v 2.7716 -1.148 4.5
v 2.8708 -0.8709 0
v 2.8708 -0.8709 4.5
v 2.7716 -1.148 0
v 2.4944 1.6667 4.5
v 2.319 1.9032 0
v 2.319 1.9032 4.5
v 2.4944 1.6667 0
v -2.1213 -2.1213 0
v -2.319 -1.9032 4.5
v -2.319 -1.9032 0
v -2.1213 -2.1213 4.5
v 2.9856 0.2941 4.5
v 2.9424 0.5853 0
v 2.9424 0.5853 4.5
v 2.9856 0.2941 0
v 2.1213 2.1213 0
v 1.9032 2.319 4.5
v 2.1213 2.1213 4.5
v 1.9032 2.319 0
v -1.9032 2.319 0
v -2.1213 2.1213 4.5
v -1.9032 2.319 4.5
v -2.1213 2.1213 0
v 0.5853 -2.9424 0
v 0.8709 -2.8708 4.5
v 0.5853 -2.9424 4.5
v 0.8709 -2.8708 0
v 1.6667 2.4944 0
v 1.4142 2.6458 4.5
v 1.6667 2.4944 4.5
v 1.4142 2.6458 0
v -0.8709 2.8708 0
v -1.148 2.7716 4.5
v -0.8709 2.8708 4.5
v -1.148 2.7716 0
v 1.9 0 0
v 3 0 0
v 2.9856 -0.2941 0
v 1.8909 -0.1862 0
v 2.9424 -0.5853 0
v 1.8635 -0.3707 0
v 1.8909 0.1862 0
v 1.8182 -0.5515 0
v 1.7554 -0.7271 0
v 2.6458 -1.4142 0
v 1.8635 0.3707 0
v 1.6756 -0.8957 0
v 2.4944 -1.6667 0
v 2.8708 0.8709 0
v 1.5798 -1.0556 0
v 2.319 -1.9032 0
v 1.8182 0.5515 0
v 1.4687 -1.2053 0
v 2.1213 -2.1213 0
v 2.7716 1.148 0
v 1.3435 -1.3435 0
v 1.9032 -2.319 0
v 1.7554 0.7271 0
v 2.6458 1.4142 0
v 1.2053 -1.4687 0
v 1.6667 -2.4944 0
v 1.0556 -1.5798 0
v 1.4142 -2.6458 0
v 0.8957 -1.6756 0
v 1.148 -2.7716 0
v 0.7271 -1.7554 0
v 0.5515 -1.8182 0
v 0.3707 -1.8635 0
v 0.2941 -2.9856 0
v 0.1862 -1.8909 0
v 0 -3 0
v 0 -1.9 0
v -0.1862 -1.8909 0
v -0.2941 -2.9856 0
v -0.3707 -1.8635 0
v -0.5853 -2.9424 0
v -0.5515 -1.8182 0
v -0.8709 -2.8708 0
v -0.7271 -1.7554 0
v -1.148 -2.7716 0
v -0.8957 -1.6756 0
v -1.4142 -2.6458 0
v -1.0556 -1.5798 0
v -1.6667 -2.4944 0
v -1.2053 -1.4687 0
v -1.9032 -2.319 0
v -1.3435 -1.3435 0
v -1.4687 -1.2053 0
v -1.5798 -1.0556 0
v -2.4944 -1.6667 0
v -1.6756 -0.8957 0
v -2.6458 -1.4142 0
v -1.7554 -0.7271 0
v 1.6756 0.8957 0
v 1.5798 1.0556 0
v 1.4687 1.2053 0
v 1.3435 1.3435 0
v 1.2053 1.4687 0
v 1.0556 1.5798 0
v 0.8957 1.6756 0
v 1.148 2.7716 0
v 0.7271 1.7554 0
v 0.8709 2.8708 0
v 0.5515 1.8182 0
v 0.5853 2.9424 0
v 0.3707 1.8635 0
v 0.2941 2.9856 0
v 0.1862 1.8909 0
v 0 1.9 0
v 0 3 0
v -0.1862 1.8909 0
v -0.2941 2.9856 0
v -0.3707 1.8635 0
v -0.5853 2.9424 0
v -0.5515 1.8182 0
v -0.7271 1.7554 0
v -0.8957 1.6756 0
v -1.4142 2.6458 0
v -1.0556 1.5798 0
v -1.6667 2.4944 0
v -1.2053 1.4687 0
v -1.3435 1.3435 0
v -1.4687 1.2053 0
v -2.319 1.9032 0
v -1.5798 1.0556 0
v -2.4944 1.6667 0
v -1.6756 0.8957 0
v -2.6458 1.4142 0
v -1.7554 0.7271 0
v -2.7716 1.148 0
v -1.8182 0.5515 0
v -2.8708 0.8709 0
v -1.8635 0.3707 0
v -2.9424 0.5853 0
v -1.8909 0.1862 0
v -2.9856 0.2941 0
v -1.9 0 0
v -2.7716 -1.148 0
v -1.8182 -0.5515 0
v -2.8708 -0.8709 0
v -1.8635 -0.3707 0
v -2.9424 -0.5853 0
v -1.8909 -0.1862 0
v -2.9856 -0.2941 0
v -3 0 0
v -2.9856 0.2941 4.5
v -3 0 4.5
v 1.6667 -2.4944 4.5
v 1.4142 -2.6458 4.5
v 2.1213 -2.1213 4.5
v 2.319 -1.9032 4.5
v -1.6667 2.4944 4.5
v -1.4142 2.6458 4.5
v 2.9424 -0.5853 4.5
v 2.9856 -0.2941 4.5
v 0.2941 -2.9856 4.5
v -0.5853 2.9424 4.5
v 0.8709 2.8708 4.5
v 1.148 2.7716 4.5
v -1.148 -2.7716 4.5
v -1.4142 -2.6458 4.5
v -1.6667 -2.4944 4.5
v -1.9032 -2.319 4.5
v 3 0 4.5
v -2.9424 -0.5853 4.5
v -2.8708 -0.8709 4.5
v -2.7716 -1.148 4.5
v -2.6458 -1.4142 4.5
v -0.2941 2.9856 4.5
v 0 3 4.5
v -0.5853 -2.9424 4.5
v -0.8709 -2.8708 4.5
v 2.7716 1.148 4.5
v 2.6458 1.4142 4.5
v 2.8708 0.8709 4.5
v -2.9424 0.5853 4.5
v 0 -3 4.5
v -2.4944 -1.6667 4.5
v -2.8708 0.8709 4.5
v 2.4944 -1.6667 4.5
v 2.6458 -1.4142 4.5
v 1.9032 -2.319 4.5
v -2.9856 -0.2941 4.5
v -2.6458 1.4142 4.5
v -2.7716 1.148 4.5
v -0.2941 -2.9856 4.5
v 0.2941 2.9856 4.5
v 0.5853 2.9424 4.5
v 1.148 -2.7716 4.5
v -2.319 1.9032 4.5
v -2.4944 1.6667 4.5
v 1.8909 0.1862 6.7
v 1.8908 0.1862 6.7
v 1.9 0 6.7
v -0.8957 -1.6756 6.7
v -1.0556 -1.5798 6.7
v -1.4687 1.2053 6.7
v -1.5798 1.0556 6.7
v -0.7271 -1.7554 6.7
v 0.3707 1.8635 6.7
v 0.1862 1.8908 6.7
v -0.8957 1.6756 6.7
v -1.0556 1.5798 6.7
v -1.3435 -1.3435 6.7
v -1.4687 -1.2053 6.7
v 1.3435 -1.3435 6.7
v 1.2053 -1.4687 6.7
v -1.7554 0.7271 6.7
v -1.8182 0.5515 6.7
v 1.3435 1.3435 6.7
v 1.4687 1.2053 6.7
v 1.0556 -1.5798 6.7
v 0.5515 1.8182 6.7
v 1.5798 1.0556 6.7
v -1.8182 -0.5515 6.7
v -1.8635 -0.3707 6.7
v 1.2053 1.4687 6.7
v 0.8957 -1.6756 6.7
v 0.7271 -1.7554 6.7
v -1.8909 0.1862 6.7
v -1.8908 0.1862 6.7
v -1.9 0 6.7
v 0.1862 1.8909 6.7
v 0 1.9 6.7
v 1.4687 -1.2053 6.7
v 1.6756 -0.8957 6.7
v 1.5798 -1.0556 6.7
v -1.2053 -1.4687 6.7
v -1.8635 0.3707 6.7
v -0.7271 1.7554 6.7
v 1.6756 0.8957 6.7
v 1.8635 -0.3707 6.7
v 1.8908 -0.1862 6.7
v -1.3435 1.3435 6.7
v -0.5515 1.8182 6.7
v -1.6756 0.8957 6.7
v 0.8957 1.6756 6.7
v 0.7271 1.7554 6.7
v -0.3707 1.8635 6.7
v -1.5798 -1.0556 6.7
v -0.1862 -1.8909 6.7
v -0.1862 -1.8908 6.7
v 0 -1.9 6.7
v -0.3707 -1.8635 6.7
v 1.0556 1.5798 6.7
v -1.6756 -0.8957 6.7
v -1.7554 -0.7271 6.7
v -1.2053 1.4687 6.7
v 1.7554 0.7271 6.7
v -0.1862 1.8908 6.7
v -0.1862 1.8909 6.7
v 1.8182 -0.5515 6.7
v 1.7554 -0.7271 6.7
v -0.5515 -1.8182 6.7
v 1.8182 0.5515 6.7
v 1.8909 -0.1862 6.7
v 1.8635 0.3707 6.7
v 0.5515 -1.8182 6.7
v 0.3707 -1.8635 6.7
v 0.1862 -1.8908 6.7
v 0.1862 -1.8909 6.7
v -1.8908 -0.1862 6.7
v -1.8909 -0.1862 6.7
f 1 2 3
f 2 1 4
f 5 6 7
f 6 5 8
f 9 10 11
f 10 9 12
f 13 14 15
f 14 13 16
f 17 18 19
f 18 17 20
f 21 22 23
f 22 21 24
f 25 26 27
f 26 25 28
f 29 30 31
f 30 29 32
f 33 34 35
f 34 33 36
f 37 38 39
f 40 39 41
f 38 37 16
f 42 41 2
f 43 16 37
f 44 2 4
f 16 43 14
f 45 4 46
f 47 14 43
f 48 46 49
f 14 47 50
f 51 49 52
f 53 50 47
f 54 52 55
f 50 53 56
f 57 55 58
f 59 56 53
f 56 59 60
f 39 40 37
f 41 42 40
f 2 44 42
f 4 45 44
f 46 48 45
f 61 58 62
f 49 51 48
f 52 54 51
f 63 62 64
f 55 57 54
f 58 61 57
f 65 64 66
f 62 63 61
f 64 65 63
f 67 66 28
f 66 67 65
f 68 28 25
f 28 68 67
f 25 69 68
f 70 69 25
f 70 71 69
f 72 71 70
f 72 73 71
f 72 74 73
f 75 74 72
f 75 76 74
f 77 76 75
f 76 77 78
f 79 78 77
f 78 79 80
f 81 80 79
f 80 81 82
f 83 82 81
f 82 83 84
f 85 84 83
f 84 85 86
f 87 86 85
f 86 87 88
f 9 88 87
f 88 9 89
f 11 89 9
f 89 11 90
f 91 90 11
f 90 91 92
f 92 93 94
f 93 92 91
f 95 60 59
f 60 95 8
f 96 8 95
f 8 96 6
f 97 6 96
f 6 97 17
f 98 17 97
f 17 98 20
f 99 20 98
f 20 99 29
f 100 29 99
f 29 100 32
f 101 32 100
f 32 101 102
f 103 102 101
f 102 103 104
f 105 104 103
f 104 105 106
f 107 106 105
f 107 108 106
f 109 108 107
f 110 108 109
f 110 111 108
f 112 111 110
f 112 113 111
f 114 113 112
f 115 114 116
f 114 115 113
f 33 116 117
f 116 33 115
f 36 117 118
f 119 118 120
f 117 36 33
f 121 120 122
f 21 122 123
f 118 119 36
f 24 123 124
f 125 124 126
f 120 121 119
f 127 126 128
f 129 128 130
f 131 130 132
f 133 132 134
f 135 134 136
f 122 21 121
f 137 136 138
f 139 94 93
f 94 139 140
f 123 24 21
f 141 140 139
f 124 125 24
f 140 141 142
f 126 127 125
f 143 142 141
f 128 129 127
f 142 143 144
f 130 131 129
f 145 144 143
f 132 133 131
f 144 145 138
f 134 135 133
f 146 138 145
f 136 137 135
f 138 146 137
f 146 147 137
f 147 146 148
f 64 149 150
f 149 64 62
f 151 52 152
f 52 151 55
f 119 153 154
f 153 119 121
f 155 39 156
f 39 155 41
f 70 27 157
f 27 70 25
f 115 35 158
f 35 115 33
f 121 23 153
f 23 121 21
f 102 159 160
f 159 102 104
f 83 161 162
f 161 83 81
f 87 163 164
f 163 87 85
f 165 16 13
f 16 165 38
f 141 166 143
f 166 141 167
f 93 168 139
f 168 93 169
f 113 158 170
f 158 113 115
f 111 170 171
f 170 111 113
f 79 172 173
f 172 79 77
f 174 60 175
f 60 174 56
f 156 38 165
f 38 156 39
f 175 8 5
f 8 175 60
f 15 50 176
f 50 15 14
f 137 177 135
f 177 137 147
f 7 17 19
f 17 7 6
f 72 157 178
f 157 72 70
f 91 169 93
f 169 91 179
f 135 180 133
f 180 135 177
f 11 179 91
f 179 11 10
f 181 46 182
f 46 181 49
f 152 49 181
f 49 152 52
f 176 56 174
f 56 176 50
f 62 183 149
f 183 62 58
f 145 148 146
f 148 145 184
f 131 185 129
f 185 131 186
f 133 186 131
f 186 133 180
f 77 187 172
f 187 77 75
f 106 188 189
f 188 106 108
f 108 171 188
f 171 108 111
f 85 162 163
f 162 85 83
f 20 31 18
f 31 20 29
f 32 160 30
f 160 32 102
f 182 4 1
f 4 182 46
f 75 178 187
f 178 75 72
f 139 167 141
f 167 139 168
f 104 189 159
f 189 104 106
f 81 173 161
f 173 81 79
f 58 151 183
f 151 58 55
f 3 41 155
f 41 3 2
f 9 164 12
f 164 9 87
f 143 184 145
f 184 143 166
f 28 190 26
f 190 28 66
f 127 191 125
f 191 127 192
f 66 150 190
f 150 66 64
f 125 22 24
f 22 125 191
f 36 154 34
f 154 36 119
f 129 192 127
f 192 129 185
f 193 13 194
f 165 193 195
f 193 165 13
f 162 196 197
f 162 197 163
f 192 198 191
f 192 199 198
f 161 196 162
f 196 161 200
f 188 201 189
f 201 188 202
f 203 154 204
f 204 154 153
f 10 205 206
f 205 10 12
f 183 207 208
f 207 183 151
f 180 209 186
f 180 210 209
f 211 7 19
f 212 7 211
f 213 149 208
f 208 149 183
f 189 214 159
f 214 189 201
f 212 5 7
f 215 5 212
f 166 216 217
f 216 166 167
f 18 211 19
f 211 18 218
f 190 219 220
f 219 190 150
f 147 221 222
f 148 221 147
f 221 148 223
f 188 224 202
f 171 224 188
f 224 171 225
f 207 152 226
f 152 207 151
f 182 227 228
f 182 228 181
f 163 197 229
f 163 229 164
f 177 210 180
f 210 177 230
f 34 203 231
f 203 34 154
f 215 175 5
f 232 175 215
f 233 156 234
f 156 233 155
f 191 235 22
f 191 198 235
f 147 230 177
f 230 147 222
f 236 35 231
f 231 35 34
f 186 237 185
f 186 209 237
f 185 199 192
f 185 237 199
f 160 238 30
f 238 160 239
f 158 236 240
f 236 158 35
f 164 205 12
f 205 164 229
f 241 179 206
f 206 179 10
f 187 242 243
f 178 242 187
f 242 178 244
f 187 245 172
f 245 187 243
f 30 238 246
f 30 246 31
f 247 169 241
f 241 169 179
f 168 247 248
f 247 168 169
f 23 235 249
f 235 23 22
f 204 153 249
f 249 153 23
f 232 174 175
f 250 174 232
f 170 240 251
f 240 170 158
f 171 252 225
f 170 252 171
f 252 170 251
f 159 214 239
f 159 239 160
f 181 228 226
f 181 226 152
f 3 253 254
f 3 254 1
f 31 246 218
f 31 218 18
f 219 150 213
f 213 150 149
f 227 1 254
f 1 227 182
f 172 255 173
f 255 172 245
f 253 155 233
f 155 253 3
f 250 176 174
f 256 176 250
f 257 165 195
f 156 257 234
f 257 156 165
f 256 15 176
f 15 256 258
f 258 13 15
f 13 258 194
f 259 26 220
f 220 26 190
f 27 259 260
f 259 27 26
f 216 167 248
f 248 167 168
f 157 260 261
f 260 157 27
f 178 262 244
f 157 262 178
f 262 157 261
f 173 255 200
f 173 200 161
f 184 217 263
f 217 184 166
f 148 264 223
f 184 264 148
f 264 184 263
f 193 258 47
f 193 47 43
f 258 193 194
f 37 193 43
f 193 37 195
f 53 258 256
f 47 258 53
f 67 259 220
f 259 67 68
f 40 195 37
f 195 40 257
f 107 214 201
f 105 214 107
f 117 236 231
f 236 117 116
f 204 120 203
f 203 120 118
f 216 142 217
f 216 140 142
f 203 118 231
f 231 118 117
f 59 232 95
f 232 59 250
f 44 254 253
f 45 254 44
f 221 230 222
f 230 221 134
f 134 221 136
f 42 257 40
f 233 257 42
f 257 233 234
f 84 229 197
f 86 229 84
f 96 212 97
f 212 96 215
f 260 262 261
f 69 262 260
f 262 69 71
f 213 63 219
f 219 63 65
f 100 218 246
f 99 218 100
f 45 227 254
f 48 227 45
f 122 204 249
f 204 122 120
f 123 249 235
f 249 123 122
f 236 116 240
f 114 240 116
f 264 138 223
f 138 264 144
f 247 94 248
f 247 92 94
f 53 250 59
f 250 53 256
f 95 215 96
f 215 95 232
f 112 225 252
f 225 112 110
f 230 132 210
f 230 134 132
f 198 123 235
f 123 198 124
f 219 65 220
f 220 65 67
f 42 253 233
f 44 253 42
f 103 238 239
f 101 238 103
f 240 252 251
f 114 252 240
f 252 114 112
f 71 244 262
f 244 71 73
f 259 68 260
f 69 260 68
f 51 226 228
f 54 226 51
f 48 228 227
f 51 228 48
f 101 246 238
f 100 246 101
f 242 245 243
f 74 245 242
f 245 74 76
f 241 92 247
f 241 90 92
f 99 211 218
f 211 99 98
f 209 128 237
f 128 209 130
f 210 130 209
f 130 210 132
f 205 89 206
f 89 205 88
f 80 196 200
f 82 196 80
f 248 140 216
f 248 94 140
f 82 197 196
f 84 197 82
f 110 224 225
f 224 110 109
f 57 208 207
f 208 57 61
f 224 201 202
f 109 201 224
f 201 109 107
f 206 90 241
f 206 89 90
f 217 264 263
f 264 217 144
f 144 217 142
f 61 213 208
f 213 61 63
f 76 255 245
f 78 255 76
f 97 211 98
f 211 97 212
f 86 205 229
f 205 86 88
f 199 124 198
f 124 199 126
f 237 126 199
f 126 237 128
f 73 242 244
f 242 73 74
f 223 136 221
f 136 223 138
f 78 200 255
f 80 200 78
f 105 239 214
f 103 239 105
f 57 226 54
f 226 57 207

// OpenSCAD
$fn = 64;

h = 4.5;
id = 3.8;
od = 6;
drill_d = 2;

module outer() {
  cylinder(h = h, d = od);
  translate([0, 0, h]) { 
    cylinder(h = od, d1 = od, d2 = 0);
  }
}

module drill() {
  translate([0, 0, -1]) {
    cylinder(h = 100, d = drill_d); 
    cylinder(h = h + 6, d = id); 
  }
}

module bracket_drill() {
  translate([0, 0, -h]) {
    outer();
    drill();
  }
}

difference() {
  outer();
  drill();
}
